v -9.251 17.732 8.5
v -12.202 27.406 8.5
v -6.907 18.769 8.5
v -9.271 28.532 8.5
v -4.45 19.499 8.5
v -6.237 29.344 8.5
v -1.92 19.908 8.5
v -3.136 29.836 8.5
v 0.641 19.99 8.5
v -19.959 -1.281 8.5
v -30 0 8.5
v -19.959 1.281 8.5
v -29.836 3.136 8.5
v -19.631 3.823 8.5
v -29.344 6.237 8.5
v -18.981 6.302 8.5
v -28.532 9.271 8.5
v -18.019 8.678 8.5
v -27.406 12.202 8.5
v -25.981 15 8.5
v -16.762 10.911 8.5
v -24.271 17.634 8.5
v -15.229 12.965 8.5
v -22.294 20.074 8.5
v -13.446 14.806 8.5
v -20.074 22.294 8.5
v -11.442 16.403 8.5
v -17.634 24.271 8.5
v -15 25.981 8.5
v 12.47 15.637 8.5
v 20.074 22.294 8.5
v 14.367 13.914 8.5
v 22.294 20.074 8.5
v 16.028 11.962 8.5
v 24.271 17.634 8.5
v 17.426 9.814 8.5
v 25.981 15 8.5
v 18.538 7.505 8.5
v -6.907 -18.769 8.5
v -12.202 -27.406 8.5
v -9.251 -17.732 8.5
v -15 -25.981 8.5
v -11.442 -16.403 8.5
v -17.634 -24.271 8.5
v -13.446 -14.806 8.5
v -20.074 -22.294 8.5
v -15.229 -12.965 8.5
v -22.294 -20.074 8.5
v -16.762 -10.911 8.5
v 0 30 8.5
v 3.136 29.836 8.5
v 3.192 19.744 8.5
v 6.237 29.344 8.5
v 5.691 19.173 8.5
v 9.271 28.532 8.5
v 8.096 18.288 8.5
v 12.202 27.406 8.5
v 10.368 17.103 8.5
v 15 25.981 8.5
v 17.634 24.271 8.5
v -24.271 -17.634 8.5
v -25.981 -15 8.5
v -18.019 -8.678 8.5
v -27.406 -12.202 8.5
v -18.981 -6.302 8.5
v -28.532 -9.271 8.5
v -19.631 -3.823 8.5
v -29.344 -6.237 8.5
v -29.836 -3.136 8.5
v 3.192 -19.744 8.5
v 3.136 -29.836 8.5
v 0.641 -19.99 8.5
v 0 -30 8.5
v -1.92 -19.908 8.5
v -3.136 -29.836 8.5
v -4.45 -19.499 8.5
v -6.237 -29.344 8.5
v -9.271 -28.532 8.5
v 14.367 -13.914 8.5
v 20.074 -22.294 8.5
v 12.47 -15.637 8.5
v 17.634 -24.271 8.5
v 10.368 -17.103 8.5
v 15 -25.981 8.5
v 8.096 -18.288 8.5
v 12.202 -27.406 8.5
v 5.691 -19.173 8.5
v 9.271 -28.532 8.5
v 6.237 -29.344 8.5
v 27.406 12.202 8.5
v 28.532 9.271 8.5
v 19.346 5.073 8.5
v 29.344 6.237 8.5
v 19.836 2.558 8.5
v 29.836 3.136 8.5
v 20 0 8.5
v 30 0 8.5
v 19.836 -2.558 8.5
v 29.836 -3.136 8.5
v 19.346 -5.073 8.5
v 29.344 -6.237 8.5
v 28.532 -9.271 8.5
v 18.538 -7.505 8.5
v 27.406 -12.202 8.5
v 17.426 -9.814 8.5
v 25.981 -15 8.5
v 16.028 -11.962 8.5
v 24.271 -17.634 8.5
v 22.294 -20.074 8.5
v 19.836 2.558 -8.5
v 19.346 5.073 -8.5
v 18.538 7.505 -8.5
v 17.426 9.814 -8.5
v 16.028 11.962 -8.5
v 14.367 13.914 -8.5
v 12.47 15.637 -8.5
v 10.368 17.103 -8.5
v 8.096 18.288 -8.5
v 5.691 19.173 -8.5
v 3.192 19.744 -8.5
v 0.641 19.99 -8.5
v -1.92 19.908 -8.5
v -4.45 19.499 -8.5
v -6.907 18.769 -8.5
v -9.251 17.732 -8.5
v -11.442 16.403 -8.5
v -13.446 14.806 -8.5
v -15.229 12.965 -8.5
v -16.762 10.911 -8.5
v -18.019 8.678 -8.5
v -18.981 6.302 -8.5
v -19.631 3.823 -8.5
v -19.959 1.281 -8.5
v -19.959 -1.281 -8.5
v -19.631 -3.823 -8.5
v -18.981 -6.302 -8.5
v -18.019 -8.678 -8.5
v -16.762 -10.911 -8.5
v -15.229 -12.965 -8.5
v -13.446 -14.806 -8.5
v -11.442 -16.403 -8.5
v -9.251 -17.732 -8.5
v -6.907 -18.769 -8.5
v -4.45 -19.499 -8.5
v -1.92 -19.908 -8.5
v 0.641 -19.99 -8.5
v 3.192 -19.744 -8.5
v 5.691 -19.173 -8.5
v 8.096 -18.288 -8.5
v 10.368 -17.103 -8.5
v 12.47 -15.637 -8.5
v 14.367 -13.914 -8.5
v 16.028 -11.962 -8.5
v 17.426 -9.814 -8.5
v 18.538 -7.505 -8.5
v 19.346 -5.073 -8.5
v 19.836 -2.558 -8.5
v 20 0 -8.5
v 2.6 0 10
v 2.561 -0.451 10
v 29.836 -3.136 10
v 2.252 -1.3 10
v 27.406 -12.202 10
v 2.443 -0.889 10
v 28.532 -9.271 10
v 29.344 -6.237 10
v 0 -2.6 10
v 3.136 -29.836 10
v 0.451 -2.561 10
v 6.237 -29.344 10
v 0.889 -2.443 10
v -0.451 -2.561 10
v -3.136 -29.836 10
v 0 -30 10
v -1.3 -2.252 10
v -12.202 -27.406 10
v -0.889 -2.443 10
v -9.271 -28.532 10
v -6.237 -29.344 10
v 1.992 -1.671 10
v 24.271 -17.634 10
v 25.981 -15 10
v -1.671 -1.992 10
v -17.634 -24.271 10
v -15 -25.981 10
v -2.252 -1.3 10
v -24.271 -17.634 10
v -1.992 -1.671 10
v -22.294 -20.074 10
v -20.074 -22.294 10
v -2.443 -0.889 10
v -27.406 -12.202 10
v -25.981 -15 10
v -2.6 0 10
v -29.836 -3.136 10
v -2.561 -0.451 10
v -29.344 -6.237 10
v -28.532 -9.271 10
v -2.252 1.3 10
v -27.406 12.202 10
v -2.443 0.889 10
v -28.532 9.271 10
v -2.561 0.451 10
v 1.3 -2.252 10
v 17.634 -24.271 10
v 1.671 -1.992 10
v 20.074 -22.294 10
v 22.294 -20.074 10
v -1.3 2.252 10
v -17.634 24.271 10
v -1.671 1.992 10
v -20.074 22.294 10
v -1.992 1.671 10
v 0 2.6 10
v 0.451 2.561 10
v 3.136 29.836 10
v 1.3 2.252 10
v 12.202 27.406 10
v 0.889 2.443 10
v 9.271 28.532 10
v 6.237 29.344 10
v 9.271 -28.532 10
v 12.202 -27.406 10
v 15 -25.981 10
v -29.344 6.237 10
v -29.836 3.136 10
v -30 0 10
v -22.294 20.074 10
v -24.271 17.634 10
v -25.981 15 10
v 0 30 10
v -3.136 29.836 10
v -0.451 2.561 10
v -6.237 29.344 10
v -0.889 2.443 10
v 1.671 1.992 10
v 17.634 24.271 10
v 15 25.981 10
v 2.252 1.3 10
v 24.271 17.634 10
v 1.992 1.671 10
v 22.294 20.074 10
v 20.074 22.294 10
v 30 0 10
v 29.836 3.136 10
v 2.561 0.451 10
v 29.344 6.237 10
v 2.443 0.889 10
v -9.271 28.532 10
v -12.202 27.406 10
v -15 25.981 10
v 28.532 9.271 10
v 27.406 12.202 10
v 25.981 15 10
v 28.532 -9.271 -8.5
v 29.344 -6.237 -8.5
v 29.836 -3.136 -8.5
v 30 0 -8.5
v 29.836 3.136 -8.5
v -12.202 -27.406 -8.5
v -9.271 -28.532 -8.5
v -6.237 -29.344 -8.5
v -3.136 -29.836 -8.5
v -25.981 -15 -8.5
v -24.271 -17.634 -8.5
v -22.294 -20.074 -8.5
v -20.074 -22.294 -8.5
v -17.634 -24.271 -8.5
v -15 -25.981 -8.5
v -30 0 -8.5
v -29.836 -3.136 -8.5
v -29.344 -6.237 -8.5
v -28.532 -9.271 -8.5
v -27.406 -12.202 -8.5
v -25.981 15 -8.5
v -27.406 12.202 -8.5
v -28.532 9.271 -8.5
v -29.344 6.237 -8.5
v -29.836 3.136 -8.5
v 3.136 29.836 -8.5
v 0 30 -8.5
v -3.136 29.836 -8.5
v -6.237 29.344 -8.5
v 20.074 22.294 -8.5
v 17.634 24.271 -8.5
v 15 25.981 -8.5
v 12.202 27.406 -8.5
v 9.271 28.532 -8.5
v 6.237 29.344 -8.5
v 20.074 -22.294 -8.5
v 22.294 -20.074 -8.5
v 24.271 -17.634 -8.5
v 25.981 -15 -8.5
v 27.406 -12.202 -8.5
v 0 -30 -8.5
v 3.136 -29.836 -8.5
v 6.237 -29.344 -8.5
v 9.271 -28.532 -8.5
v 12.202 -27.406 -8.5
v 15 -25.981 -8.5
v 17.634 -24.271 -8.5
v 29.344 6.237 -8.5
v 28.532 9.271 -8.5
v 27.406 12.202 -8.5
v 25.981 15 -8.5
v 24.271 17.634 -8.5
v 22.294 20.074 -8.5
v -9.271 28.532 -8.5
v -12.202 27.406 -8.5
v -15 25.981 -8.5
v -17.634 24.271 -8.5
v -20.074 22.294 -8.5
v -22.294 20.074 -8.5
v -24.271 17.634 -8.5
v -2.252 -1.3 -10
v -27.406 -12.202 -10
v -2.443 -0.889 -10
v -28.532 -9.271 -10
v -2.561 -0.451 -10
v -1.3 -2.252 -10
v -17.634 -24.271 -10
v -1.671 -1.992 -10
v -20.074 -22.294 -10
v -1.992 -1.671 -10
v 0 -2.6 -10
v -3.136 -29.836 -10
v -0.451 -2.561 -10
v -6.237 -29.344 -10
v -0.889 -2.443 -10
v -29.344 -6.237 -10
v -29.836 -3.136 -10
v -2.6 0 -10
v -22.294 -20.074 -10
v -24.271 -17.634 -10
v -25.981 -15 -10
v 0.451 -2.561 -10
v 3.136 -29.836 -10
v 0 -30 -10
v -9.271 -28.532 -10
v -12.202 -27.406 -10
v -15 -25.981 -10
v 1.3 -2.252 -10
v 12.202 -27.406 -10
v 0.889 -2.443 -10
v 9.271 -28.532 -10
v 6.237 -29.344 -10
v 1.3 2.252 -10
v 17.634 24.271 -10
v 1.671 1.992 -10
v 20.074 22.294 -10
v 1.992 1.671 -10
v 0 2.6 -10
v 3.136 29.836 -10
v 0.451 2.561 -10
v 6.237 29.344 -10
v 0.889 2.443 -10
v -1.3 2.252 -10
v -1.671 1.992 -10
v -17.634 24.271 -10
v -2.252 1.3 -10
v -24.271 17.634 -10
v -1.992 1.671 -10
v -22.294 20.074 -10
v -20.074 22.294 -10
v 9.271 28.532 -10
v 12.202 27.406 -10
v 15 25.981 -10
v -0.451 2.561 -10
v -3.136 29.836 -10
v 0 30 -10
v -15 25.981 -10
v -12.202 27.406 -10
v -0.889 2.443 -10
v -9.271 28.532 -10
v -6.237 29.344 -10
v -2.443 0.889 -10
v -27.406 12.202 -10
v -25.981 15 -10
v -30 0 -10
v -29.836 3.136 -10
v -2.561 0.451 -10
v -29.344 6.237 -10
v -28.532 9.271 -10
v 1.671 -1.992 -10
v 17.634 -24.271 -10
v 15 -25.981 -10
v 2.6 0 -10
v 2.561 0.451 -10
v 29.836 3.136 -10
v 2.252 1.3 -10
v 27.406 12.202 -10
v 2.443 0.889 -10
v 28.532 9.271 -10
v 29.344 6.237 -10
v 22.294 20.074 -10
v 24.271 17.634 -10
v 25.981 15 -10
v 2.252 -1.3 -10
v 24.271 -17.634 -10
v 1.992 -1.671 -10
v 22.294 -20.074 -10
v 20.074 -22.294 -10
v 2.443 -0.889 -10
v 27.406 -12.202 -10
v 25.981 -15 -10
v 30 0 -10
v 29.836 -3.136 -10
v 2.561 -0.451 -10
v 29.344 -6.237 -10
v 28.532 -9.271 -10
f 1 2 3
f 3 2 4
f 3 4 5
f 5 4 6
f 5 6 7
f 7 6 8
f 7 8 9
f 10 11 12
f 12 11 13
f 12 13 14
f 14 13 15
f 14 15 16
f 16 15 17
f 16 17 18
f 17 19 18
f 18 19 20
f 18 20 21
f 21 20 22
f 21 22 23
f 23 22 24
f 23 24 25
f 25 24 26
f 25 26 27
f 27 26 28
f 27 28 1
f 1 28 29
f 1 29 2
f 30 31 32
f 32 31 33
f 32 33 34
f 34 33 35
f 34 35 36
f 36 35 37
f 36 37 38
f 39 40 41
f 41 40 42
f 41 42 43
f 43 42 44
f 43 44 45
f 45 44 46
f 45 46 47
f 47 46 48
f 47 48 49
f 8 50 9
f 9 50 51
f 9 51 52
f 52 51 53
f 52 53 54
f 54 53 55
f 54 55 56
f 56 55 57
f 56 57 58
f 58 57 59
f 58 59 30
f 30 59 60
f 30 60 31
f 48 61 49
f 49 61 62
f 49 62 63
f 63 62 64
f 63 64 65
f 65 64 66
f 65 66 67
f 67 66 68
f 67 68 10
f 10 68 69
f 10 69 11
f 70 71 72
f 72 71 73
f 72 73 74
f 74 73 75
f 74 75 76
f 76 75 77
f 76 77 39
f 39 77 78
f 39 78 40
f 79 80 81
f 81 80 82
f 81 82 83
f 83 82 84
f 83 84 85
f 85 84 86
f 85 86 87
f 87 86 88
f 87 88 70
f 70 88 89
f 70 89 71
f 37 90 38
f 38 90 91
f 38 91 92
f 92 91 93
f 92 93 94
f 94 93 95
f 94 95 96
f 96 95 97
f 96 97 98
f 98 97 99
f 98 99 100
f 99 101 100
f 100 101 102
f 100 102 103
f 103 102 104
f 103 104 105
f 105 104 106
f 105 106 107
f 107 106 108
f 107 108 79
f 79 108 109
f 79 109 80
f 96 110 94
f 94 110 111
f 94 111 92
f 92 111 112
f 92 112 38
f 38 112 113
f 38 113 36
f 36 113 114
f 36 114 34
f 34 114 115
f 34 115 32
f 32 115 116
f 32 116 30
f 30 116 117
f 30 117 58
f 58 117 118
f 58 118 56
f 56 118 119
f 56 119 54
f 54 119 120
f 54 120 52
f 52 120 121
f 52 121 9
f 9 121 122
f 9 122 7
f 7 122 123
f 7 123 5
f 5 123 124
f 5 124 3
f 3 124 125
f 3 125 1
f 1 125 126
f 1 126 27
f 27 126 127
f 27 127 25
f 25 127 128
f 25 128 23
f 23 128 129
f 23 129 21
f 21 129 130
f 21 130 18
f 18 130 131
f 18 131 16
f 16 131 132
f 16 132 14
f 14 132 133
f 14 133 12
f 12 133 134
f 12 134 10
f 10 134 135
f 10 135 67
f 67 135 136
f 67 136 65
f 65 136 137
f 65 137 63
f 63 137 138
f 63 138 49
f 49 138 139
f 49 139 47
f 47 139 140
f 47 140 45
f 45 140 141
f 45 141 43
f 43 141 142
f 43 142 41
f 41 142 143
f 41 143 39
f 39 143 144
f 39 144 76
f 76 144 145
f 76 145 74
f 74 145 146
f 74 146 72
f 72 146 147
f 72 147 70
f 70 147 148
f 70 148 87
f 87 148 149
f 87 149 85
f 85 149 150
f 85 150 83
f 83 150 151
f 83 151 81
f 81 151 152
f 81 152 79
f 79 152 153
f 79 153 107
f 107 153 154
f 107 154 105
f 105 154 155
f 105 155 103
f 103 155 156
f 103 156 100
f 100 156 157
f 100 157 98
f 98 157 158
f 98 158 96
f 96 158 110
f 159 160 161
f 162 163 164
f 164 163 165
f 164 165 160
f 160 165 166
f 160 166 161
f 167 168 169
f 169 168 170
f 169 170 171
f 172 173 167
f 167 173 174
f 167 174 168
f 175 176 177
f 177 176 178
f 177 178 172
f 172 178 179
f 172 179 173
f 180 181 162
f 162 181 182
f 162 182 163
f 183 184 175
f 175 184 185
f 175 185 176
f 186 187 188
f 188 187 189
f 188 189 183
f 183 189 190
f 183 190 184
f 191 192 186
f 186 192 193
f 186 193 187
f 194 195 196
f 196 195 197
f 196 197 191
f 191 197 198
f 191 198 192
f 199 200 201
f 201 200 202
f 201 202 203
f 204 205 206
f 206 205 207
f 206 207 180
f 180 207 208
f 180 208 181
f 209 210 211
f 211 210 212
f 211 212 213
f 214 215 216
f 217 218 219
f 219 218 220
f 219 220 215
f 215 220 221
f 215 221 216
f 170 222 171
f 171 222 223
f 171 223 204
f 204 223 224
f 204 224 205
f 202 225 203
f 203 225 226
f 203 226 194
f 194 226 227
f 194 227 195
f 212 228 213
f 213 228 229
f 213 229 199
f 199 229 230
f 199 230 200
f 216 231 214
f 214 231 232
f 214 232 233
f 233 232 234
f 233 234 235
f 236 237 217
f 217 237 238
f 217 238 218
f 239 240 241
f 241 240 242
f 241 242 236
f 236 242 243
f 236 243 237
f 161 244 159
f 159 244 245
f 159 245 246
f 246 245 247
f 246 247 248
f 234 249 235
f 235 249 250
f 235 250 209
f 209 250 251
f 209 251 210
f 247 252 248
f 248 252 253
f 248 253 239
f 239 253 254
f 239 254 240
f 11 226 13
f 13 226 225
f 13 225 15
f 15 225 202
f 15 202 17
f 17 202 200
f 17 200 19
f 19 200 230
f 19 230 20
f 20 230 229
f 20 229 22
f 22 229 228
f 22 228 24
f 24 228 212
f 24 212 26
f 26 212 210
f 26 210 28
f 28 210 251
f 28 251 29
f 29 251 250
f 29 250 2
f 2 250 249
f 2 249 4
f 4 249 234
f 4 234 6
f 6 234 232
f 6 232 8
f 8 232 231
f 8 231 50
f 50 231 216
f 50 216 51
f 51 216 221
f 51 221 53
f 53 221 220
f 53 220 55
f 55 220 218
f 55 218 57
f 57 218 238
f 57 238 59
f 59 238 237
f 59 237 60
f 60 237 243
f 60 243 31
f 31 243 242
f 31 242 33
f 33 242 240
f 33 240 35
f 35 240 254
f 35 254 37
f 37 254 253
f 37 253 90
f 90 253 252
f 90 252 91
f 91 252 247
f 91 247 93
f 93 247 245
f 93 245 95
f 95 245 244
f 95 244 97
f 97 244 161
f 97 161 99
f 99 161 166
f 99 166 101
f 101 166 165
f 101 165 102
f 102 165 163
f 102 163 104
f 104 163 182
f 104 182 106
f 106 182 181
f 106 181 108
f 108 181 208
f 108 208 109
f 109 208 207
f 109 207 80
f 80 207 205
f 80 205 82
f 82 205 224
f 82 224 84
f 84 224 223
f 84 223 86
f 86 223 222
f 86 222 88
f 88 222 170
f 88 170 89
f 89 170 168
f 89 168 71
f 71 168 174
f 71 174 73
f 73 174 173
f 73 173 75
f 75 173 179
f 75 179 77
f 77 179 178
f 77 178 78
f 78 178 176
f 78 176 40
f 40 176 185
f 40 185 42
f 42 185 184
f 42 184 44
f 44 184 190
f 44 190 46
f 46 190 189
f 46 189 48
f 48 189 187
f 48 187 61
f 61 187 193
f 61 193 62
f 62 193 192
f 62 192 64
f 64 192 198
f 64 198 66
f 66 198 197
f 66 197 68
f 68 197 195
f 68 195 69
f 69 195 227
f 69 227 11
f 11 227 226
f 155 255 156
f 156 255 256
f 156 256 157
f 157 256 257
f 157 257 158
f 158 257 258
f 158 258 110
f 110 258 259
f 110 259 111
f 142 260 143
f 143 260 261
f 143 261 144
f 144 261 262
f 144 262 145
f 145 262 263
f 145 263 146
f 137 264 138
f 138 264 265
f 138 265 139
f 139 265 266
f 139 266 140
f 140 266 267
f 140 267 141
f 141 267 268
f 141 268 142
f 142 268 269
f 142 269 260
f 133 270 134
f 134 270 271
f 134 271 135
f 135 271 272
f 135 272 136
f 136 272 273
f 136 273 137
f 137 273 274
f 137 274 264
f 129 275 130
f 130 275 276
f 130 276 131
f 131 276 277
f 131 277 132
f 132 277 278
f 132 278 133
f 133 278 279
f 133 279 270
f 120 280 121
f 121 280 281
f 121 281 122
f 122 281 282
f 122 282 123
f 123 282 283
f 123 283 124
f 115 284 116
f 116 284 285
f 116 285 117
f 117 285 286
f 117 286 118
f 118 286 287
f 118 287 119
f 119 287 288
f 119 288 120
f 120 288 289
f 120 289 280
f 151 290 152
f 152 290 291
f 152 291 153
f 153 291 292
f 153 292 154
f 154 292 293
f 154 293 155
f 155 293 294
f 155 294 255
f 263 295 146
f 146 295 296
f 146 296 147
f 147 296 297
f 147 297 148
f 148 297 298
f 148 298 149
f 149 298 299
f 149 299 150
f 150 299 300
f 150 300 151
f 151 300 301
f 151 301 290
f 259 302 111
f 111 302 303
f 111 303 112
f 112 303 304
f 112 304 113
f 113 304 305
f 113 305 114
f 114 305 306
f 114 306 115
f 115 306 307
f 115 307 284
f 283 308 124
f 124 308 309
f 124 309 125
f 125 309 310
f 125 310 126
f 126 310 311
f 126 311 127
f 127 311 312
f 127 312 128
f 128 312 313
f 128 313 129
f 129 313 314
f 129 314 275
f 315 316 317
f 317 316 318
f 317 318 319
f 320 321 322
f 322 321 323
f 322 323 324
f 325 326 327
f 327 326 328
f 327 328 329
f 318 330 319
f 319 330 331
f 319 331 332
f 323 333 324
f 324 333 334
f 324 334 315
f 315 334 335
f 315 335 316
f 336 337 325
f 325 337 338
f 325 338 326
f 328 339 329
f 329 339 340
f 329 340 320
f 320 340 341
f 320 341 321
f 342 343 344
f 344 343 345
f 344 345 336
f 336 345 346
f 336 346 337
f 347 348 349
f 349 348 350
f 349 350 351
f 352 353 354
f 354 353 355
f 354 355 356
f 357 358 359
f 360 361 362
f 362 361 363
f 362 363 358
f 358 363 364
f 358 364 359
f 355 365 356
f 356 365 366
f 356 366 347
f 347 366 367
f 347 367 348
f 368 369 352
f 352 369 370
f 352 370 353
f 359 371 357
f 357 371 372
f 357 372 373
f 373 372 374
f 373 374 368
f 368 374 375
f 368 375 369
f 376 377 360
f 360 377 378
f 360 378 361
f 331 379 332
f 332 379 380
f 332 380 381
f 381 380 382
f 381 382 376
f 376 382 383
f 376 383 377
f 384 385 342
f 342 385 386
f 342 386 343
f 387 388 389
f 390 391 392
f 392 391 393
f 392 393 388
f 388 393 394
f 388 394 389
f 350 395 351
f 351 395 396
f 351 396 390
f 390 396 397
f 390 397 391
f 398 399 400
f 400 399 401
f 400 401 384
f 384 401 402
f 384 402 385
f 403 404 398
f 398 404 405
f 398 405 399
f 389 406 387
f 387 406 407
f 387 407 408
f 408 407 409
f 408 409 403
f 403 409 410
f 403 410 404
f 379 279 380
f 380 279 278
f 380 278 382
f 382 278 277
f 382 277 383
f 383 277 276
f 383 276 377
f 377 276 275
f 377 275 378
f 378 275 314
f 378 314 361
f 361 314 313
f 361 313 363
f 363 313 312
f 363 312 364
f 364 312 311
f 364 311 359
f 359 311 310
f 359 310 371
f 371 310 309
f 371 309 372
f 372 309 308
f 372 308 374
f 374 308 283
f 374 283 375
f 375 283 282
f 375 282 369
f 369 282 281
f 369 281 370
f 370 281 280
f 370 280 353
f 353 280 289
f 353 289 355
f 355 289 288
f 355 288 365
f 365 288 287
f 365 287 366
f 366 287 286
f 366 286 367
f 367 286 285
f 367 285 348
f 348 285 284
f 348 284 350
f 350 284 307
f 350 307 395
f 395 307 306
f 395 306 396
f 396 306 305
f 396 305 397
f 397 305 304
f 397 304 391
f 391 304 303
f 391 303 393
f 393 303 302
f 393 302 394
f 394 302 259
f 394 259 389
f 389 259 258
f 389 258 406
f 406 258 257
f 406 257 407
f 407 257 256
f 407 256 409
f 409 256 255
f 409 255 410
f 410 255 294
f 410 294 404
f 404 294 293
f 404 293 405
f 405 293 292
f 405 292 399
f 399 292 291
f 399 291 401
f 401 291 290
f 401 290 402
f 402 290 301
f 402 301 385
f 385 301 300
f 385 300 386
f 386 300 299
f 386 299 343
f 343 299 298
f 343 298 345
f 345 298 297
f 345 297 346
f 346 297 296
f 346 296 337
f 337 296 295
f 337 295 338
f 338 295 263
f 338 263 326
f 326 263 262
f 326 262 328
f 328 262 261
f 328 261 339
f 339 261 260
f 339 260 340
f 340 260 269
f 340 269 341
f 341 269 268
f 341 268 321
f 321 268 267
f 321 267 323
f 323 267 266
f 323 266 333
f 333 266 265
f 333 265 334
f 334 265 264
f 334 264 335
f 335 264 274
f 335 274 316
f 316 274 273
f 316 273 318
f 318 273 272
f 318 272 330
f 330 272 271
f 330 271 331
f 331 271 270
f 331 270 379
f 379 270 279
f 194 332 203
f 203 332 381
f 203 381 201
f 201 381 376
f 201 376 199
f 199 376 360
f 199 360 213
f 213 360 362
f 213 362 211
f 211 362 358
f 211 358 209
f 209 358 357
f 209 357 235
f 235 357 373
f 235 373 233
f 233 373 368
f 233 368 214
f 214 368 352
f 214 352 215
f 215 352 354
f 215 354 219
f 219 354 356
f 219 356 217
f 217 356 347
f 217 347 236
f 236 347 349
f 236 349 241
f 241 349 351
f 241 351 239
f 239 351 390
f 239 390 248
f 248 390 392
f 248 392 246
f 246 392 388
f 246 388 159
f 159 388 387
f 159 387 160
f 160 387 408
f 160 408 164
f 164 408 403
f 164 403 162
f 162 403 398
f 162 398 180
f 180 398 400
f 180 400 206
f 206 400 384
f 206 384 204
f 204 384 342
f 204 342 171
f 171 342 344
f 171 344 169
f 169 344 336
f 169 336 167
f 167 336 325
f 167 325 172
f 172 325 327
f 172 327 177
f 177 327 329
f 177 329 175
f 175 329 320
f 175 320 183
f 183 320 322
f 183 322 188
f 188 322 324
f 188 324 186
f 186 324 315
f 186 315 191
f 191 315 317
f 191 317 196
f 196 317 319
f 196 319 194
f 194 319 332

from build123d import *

# Parameters (mm, degrees)
SKETCH1_R               = 30
SKETCH1_R_2             = 20
BOSS_EXTRUDE1_DEPTH     = 10
SKETCH2_OUTSIDE_W       = 79.436
SKETCH2_OUTSIDE_H       = 79.436
SKETCH2_OUTSIDE_R       = 20
CUT_EXTRUDE1_DEPTH      = 3.5
CUT_EXTRUDE3_DEPTH      = 47.904157598
CUT_EXTRUDE3_DEPTH_BACK = 47.904157598
SKETCH4_R               = 2.6
SKETCH5_R               = 30
SKETCH5_R_2             = 20
CUT_EXTRUDE4_DEPTH      = 3


with BuildPart() as part:
    # Sketch1 → Boss-Extrude1 (new, symmetric)
    # profile 1 of 2: a face of its own
    with BuildSketch(Plane.XY):
        Circle(SKETCH1_R)
        Circle(SKETCH1_R_2, mode=Mode.SUBTRACT)
    # profile 2 of 2: a face of its own
    with BuildSketch(Plane.XY):
        Circle(SKETCH1_R_2)
    extrude(amount=BOSS_EXTRUDE1_DEPTH, both=True)

    # Sketch2 outside → Cut-Extrude1 (cut, symmetric)
    with BuildSketch(Plane.XY.offset(5)):
        Rectangle(SKETCH2_OUTSIDE_W, SKETCH2_OUTSIDE_H)
        Circle(SKETCH2_OUTSIDE_R, mode=Mode.SUBTRACT)
    cut_extrude1 = extrude(amount=CUT_EXTRUDE1_DEPTH, both=True, mode=Mode.SUBTRACT)

    # Mirror1: Cut-Extrude1 across plane
    add(cut_extrude1.mirror(Plane.XY), mode=Mode.SUBTRACT)

    # Sketch4 → Cut-Extrude3 (cut, two sides: drawn at the far end of the back side and taken through both)
    with BuildSketch(Plane(origin=(0, 0, -10), x_dir=(-1, 0, 0), z_dir=(0, 0, -1)).offset(-CUT_EXTRUDE3_DEPTH_BACK)):
        Circle(SKETCH4_R)
    extrude(amount=CUT_EXTRUDE3_DEPTH + CUT_EXTRUDE3_DEPTH_BACK, mode=Mode.SUBTRACT)

    # Sketch5 → Cut-Extrude4 (cut)
    with BuildSketch(Plane.XY.offset(1.5)):
        Circle(SKETCH5_R)
        Circle(SKETCH5_R_2, mode=Mode.SUBTRACT)
    extrude(amount=-CUT_EXTRUDE4_DEPTH, mode=Mode.SUBTRACT)


solid = part.part
